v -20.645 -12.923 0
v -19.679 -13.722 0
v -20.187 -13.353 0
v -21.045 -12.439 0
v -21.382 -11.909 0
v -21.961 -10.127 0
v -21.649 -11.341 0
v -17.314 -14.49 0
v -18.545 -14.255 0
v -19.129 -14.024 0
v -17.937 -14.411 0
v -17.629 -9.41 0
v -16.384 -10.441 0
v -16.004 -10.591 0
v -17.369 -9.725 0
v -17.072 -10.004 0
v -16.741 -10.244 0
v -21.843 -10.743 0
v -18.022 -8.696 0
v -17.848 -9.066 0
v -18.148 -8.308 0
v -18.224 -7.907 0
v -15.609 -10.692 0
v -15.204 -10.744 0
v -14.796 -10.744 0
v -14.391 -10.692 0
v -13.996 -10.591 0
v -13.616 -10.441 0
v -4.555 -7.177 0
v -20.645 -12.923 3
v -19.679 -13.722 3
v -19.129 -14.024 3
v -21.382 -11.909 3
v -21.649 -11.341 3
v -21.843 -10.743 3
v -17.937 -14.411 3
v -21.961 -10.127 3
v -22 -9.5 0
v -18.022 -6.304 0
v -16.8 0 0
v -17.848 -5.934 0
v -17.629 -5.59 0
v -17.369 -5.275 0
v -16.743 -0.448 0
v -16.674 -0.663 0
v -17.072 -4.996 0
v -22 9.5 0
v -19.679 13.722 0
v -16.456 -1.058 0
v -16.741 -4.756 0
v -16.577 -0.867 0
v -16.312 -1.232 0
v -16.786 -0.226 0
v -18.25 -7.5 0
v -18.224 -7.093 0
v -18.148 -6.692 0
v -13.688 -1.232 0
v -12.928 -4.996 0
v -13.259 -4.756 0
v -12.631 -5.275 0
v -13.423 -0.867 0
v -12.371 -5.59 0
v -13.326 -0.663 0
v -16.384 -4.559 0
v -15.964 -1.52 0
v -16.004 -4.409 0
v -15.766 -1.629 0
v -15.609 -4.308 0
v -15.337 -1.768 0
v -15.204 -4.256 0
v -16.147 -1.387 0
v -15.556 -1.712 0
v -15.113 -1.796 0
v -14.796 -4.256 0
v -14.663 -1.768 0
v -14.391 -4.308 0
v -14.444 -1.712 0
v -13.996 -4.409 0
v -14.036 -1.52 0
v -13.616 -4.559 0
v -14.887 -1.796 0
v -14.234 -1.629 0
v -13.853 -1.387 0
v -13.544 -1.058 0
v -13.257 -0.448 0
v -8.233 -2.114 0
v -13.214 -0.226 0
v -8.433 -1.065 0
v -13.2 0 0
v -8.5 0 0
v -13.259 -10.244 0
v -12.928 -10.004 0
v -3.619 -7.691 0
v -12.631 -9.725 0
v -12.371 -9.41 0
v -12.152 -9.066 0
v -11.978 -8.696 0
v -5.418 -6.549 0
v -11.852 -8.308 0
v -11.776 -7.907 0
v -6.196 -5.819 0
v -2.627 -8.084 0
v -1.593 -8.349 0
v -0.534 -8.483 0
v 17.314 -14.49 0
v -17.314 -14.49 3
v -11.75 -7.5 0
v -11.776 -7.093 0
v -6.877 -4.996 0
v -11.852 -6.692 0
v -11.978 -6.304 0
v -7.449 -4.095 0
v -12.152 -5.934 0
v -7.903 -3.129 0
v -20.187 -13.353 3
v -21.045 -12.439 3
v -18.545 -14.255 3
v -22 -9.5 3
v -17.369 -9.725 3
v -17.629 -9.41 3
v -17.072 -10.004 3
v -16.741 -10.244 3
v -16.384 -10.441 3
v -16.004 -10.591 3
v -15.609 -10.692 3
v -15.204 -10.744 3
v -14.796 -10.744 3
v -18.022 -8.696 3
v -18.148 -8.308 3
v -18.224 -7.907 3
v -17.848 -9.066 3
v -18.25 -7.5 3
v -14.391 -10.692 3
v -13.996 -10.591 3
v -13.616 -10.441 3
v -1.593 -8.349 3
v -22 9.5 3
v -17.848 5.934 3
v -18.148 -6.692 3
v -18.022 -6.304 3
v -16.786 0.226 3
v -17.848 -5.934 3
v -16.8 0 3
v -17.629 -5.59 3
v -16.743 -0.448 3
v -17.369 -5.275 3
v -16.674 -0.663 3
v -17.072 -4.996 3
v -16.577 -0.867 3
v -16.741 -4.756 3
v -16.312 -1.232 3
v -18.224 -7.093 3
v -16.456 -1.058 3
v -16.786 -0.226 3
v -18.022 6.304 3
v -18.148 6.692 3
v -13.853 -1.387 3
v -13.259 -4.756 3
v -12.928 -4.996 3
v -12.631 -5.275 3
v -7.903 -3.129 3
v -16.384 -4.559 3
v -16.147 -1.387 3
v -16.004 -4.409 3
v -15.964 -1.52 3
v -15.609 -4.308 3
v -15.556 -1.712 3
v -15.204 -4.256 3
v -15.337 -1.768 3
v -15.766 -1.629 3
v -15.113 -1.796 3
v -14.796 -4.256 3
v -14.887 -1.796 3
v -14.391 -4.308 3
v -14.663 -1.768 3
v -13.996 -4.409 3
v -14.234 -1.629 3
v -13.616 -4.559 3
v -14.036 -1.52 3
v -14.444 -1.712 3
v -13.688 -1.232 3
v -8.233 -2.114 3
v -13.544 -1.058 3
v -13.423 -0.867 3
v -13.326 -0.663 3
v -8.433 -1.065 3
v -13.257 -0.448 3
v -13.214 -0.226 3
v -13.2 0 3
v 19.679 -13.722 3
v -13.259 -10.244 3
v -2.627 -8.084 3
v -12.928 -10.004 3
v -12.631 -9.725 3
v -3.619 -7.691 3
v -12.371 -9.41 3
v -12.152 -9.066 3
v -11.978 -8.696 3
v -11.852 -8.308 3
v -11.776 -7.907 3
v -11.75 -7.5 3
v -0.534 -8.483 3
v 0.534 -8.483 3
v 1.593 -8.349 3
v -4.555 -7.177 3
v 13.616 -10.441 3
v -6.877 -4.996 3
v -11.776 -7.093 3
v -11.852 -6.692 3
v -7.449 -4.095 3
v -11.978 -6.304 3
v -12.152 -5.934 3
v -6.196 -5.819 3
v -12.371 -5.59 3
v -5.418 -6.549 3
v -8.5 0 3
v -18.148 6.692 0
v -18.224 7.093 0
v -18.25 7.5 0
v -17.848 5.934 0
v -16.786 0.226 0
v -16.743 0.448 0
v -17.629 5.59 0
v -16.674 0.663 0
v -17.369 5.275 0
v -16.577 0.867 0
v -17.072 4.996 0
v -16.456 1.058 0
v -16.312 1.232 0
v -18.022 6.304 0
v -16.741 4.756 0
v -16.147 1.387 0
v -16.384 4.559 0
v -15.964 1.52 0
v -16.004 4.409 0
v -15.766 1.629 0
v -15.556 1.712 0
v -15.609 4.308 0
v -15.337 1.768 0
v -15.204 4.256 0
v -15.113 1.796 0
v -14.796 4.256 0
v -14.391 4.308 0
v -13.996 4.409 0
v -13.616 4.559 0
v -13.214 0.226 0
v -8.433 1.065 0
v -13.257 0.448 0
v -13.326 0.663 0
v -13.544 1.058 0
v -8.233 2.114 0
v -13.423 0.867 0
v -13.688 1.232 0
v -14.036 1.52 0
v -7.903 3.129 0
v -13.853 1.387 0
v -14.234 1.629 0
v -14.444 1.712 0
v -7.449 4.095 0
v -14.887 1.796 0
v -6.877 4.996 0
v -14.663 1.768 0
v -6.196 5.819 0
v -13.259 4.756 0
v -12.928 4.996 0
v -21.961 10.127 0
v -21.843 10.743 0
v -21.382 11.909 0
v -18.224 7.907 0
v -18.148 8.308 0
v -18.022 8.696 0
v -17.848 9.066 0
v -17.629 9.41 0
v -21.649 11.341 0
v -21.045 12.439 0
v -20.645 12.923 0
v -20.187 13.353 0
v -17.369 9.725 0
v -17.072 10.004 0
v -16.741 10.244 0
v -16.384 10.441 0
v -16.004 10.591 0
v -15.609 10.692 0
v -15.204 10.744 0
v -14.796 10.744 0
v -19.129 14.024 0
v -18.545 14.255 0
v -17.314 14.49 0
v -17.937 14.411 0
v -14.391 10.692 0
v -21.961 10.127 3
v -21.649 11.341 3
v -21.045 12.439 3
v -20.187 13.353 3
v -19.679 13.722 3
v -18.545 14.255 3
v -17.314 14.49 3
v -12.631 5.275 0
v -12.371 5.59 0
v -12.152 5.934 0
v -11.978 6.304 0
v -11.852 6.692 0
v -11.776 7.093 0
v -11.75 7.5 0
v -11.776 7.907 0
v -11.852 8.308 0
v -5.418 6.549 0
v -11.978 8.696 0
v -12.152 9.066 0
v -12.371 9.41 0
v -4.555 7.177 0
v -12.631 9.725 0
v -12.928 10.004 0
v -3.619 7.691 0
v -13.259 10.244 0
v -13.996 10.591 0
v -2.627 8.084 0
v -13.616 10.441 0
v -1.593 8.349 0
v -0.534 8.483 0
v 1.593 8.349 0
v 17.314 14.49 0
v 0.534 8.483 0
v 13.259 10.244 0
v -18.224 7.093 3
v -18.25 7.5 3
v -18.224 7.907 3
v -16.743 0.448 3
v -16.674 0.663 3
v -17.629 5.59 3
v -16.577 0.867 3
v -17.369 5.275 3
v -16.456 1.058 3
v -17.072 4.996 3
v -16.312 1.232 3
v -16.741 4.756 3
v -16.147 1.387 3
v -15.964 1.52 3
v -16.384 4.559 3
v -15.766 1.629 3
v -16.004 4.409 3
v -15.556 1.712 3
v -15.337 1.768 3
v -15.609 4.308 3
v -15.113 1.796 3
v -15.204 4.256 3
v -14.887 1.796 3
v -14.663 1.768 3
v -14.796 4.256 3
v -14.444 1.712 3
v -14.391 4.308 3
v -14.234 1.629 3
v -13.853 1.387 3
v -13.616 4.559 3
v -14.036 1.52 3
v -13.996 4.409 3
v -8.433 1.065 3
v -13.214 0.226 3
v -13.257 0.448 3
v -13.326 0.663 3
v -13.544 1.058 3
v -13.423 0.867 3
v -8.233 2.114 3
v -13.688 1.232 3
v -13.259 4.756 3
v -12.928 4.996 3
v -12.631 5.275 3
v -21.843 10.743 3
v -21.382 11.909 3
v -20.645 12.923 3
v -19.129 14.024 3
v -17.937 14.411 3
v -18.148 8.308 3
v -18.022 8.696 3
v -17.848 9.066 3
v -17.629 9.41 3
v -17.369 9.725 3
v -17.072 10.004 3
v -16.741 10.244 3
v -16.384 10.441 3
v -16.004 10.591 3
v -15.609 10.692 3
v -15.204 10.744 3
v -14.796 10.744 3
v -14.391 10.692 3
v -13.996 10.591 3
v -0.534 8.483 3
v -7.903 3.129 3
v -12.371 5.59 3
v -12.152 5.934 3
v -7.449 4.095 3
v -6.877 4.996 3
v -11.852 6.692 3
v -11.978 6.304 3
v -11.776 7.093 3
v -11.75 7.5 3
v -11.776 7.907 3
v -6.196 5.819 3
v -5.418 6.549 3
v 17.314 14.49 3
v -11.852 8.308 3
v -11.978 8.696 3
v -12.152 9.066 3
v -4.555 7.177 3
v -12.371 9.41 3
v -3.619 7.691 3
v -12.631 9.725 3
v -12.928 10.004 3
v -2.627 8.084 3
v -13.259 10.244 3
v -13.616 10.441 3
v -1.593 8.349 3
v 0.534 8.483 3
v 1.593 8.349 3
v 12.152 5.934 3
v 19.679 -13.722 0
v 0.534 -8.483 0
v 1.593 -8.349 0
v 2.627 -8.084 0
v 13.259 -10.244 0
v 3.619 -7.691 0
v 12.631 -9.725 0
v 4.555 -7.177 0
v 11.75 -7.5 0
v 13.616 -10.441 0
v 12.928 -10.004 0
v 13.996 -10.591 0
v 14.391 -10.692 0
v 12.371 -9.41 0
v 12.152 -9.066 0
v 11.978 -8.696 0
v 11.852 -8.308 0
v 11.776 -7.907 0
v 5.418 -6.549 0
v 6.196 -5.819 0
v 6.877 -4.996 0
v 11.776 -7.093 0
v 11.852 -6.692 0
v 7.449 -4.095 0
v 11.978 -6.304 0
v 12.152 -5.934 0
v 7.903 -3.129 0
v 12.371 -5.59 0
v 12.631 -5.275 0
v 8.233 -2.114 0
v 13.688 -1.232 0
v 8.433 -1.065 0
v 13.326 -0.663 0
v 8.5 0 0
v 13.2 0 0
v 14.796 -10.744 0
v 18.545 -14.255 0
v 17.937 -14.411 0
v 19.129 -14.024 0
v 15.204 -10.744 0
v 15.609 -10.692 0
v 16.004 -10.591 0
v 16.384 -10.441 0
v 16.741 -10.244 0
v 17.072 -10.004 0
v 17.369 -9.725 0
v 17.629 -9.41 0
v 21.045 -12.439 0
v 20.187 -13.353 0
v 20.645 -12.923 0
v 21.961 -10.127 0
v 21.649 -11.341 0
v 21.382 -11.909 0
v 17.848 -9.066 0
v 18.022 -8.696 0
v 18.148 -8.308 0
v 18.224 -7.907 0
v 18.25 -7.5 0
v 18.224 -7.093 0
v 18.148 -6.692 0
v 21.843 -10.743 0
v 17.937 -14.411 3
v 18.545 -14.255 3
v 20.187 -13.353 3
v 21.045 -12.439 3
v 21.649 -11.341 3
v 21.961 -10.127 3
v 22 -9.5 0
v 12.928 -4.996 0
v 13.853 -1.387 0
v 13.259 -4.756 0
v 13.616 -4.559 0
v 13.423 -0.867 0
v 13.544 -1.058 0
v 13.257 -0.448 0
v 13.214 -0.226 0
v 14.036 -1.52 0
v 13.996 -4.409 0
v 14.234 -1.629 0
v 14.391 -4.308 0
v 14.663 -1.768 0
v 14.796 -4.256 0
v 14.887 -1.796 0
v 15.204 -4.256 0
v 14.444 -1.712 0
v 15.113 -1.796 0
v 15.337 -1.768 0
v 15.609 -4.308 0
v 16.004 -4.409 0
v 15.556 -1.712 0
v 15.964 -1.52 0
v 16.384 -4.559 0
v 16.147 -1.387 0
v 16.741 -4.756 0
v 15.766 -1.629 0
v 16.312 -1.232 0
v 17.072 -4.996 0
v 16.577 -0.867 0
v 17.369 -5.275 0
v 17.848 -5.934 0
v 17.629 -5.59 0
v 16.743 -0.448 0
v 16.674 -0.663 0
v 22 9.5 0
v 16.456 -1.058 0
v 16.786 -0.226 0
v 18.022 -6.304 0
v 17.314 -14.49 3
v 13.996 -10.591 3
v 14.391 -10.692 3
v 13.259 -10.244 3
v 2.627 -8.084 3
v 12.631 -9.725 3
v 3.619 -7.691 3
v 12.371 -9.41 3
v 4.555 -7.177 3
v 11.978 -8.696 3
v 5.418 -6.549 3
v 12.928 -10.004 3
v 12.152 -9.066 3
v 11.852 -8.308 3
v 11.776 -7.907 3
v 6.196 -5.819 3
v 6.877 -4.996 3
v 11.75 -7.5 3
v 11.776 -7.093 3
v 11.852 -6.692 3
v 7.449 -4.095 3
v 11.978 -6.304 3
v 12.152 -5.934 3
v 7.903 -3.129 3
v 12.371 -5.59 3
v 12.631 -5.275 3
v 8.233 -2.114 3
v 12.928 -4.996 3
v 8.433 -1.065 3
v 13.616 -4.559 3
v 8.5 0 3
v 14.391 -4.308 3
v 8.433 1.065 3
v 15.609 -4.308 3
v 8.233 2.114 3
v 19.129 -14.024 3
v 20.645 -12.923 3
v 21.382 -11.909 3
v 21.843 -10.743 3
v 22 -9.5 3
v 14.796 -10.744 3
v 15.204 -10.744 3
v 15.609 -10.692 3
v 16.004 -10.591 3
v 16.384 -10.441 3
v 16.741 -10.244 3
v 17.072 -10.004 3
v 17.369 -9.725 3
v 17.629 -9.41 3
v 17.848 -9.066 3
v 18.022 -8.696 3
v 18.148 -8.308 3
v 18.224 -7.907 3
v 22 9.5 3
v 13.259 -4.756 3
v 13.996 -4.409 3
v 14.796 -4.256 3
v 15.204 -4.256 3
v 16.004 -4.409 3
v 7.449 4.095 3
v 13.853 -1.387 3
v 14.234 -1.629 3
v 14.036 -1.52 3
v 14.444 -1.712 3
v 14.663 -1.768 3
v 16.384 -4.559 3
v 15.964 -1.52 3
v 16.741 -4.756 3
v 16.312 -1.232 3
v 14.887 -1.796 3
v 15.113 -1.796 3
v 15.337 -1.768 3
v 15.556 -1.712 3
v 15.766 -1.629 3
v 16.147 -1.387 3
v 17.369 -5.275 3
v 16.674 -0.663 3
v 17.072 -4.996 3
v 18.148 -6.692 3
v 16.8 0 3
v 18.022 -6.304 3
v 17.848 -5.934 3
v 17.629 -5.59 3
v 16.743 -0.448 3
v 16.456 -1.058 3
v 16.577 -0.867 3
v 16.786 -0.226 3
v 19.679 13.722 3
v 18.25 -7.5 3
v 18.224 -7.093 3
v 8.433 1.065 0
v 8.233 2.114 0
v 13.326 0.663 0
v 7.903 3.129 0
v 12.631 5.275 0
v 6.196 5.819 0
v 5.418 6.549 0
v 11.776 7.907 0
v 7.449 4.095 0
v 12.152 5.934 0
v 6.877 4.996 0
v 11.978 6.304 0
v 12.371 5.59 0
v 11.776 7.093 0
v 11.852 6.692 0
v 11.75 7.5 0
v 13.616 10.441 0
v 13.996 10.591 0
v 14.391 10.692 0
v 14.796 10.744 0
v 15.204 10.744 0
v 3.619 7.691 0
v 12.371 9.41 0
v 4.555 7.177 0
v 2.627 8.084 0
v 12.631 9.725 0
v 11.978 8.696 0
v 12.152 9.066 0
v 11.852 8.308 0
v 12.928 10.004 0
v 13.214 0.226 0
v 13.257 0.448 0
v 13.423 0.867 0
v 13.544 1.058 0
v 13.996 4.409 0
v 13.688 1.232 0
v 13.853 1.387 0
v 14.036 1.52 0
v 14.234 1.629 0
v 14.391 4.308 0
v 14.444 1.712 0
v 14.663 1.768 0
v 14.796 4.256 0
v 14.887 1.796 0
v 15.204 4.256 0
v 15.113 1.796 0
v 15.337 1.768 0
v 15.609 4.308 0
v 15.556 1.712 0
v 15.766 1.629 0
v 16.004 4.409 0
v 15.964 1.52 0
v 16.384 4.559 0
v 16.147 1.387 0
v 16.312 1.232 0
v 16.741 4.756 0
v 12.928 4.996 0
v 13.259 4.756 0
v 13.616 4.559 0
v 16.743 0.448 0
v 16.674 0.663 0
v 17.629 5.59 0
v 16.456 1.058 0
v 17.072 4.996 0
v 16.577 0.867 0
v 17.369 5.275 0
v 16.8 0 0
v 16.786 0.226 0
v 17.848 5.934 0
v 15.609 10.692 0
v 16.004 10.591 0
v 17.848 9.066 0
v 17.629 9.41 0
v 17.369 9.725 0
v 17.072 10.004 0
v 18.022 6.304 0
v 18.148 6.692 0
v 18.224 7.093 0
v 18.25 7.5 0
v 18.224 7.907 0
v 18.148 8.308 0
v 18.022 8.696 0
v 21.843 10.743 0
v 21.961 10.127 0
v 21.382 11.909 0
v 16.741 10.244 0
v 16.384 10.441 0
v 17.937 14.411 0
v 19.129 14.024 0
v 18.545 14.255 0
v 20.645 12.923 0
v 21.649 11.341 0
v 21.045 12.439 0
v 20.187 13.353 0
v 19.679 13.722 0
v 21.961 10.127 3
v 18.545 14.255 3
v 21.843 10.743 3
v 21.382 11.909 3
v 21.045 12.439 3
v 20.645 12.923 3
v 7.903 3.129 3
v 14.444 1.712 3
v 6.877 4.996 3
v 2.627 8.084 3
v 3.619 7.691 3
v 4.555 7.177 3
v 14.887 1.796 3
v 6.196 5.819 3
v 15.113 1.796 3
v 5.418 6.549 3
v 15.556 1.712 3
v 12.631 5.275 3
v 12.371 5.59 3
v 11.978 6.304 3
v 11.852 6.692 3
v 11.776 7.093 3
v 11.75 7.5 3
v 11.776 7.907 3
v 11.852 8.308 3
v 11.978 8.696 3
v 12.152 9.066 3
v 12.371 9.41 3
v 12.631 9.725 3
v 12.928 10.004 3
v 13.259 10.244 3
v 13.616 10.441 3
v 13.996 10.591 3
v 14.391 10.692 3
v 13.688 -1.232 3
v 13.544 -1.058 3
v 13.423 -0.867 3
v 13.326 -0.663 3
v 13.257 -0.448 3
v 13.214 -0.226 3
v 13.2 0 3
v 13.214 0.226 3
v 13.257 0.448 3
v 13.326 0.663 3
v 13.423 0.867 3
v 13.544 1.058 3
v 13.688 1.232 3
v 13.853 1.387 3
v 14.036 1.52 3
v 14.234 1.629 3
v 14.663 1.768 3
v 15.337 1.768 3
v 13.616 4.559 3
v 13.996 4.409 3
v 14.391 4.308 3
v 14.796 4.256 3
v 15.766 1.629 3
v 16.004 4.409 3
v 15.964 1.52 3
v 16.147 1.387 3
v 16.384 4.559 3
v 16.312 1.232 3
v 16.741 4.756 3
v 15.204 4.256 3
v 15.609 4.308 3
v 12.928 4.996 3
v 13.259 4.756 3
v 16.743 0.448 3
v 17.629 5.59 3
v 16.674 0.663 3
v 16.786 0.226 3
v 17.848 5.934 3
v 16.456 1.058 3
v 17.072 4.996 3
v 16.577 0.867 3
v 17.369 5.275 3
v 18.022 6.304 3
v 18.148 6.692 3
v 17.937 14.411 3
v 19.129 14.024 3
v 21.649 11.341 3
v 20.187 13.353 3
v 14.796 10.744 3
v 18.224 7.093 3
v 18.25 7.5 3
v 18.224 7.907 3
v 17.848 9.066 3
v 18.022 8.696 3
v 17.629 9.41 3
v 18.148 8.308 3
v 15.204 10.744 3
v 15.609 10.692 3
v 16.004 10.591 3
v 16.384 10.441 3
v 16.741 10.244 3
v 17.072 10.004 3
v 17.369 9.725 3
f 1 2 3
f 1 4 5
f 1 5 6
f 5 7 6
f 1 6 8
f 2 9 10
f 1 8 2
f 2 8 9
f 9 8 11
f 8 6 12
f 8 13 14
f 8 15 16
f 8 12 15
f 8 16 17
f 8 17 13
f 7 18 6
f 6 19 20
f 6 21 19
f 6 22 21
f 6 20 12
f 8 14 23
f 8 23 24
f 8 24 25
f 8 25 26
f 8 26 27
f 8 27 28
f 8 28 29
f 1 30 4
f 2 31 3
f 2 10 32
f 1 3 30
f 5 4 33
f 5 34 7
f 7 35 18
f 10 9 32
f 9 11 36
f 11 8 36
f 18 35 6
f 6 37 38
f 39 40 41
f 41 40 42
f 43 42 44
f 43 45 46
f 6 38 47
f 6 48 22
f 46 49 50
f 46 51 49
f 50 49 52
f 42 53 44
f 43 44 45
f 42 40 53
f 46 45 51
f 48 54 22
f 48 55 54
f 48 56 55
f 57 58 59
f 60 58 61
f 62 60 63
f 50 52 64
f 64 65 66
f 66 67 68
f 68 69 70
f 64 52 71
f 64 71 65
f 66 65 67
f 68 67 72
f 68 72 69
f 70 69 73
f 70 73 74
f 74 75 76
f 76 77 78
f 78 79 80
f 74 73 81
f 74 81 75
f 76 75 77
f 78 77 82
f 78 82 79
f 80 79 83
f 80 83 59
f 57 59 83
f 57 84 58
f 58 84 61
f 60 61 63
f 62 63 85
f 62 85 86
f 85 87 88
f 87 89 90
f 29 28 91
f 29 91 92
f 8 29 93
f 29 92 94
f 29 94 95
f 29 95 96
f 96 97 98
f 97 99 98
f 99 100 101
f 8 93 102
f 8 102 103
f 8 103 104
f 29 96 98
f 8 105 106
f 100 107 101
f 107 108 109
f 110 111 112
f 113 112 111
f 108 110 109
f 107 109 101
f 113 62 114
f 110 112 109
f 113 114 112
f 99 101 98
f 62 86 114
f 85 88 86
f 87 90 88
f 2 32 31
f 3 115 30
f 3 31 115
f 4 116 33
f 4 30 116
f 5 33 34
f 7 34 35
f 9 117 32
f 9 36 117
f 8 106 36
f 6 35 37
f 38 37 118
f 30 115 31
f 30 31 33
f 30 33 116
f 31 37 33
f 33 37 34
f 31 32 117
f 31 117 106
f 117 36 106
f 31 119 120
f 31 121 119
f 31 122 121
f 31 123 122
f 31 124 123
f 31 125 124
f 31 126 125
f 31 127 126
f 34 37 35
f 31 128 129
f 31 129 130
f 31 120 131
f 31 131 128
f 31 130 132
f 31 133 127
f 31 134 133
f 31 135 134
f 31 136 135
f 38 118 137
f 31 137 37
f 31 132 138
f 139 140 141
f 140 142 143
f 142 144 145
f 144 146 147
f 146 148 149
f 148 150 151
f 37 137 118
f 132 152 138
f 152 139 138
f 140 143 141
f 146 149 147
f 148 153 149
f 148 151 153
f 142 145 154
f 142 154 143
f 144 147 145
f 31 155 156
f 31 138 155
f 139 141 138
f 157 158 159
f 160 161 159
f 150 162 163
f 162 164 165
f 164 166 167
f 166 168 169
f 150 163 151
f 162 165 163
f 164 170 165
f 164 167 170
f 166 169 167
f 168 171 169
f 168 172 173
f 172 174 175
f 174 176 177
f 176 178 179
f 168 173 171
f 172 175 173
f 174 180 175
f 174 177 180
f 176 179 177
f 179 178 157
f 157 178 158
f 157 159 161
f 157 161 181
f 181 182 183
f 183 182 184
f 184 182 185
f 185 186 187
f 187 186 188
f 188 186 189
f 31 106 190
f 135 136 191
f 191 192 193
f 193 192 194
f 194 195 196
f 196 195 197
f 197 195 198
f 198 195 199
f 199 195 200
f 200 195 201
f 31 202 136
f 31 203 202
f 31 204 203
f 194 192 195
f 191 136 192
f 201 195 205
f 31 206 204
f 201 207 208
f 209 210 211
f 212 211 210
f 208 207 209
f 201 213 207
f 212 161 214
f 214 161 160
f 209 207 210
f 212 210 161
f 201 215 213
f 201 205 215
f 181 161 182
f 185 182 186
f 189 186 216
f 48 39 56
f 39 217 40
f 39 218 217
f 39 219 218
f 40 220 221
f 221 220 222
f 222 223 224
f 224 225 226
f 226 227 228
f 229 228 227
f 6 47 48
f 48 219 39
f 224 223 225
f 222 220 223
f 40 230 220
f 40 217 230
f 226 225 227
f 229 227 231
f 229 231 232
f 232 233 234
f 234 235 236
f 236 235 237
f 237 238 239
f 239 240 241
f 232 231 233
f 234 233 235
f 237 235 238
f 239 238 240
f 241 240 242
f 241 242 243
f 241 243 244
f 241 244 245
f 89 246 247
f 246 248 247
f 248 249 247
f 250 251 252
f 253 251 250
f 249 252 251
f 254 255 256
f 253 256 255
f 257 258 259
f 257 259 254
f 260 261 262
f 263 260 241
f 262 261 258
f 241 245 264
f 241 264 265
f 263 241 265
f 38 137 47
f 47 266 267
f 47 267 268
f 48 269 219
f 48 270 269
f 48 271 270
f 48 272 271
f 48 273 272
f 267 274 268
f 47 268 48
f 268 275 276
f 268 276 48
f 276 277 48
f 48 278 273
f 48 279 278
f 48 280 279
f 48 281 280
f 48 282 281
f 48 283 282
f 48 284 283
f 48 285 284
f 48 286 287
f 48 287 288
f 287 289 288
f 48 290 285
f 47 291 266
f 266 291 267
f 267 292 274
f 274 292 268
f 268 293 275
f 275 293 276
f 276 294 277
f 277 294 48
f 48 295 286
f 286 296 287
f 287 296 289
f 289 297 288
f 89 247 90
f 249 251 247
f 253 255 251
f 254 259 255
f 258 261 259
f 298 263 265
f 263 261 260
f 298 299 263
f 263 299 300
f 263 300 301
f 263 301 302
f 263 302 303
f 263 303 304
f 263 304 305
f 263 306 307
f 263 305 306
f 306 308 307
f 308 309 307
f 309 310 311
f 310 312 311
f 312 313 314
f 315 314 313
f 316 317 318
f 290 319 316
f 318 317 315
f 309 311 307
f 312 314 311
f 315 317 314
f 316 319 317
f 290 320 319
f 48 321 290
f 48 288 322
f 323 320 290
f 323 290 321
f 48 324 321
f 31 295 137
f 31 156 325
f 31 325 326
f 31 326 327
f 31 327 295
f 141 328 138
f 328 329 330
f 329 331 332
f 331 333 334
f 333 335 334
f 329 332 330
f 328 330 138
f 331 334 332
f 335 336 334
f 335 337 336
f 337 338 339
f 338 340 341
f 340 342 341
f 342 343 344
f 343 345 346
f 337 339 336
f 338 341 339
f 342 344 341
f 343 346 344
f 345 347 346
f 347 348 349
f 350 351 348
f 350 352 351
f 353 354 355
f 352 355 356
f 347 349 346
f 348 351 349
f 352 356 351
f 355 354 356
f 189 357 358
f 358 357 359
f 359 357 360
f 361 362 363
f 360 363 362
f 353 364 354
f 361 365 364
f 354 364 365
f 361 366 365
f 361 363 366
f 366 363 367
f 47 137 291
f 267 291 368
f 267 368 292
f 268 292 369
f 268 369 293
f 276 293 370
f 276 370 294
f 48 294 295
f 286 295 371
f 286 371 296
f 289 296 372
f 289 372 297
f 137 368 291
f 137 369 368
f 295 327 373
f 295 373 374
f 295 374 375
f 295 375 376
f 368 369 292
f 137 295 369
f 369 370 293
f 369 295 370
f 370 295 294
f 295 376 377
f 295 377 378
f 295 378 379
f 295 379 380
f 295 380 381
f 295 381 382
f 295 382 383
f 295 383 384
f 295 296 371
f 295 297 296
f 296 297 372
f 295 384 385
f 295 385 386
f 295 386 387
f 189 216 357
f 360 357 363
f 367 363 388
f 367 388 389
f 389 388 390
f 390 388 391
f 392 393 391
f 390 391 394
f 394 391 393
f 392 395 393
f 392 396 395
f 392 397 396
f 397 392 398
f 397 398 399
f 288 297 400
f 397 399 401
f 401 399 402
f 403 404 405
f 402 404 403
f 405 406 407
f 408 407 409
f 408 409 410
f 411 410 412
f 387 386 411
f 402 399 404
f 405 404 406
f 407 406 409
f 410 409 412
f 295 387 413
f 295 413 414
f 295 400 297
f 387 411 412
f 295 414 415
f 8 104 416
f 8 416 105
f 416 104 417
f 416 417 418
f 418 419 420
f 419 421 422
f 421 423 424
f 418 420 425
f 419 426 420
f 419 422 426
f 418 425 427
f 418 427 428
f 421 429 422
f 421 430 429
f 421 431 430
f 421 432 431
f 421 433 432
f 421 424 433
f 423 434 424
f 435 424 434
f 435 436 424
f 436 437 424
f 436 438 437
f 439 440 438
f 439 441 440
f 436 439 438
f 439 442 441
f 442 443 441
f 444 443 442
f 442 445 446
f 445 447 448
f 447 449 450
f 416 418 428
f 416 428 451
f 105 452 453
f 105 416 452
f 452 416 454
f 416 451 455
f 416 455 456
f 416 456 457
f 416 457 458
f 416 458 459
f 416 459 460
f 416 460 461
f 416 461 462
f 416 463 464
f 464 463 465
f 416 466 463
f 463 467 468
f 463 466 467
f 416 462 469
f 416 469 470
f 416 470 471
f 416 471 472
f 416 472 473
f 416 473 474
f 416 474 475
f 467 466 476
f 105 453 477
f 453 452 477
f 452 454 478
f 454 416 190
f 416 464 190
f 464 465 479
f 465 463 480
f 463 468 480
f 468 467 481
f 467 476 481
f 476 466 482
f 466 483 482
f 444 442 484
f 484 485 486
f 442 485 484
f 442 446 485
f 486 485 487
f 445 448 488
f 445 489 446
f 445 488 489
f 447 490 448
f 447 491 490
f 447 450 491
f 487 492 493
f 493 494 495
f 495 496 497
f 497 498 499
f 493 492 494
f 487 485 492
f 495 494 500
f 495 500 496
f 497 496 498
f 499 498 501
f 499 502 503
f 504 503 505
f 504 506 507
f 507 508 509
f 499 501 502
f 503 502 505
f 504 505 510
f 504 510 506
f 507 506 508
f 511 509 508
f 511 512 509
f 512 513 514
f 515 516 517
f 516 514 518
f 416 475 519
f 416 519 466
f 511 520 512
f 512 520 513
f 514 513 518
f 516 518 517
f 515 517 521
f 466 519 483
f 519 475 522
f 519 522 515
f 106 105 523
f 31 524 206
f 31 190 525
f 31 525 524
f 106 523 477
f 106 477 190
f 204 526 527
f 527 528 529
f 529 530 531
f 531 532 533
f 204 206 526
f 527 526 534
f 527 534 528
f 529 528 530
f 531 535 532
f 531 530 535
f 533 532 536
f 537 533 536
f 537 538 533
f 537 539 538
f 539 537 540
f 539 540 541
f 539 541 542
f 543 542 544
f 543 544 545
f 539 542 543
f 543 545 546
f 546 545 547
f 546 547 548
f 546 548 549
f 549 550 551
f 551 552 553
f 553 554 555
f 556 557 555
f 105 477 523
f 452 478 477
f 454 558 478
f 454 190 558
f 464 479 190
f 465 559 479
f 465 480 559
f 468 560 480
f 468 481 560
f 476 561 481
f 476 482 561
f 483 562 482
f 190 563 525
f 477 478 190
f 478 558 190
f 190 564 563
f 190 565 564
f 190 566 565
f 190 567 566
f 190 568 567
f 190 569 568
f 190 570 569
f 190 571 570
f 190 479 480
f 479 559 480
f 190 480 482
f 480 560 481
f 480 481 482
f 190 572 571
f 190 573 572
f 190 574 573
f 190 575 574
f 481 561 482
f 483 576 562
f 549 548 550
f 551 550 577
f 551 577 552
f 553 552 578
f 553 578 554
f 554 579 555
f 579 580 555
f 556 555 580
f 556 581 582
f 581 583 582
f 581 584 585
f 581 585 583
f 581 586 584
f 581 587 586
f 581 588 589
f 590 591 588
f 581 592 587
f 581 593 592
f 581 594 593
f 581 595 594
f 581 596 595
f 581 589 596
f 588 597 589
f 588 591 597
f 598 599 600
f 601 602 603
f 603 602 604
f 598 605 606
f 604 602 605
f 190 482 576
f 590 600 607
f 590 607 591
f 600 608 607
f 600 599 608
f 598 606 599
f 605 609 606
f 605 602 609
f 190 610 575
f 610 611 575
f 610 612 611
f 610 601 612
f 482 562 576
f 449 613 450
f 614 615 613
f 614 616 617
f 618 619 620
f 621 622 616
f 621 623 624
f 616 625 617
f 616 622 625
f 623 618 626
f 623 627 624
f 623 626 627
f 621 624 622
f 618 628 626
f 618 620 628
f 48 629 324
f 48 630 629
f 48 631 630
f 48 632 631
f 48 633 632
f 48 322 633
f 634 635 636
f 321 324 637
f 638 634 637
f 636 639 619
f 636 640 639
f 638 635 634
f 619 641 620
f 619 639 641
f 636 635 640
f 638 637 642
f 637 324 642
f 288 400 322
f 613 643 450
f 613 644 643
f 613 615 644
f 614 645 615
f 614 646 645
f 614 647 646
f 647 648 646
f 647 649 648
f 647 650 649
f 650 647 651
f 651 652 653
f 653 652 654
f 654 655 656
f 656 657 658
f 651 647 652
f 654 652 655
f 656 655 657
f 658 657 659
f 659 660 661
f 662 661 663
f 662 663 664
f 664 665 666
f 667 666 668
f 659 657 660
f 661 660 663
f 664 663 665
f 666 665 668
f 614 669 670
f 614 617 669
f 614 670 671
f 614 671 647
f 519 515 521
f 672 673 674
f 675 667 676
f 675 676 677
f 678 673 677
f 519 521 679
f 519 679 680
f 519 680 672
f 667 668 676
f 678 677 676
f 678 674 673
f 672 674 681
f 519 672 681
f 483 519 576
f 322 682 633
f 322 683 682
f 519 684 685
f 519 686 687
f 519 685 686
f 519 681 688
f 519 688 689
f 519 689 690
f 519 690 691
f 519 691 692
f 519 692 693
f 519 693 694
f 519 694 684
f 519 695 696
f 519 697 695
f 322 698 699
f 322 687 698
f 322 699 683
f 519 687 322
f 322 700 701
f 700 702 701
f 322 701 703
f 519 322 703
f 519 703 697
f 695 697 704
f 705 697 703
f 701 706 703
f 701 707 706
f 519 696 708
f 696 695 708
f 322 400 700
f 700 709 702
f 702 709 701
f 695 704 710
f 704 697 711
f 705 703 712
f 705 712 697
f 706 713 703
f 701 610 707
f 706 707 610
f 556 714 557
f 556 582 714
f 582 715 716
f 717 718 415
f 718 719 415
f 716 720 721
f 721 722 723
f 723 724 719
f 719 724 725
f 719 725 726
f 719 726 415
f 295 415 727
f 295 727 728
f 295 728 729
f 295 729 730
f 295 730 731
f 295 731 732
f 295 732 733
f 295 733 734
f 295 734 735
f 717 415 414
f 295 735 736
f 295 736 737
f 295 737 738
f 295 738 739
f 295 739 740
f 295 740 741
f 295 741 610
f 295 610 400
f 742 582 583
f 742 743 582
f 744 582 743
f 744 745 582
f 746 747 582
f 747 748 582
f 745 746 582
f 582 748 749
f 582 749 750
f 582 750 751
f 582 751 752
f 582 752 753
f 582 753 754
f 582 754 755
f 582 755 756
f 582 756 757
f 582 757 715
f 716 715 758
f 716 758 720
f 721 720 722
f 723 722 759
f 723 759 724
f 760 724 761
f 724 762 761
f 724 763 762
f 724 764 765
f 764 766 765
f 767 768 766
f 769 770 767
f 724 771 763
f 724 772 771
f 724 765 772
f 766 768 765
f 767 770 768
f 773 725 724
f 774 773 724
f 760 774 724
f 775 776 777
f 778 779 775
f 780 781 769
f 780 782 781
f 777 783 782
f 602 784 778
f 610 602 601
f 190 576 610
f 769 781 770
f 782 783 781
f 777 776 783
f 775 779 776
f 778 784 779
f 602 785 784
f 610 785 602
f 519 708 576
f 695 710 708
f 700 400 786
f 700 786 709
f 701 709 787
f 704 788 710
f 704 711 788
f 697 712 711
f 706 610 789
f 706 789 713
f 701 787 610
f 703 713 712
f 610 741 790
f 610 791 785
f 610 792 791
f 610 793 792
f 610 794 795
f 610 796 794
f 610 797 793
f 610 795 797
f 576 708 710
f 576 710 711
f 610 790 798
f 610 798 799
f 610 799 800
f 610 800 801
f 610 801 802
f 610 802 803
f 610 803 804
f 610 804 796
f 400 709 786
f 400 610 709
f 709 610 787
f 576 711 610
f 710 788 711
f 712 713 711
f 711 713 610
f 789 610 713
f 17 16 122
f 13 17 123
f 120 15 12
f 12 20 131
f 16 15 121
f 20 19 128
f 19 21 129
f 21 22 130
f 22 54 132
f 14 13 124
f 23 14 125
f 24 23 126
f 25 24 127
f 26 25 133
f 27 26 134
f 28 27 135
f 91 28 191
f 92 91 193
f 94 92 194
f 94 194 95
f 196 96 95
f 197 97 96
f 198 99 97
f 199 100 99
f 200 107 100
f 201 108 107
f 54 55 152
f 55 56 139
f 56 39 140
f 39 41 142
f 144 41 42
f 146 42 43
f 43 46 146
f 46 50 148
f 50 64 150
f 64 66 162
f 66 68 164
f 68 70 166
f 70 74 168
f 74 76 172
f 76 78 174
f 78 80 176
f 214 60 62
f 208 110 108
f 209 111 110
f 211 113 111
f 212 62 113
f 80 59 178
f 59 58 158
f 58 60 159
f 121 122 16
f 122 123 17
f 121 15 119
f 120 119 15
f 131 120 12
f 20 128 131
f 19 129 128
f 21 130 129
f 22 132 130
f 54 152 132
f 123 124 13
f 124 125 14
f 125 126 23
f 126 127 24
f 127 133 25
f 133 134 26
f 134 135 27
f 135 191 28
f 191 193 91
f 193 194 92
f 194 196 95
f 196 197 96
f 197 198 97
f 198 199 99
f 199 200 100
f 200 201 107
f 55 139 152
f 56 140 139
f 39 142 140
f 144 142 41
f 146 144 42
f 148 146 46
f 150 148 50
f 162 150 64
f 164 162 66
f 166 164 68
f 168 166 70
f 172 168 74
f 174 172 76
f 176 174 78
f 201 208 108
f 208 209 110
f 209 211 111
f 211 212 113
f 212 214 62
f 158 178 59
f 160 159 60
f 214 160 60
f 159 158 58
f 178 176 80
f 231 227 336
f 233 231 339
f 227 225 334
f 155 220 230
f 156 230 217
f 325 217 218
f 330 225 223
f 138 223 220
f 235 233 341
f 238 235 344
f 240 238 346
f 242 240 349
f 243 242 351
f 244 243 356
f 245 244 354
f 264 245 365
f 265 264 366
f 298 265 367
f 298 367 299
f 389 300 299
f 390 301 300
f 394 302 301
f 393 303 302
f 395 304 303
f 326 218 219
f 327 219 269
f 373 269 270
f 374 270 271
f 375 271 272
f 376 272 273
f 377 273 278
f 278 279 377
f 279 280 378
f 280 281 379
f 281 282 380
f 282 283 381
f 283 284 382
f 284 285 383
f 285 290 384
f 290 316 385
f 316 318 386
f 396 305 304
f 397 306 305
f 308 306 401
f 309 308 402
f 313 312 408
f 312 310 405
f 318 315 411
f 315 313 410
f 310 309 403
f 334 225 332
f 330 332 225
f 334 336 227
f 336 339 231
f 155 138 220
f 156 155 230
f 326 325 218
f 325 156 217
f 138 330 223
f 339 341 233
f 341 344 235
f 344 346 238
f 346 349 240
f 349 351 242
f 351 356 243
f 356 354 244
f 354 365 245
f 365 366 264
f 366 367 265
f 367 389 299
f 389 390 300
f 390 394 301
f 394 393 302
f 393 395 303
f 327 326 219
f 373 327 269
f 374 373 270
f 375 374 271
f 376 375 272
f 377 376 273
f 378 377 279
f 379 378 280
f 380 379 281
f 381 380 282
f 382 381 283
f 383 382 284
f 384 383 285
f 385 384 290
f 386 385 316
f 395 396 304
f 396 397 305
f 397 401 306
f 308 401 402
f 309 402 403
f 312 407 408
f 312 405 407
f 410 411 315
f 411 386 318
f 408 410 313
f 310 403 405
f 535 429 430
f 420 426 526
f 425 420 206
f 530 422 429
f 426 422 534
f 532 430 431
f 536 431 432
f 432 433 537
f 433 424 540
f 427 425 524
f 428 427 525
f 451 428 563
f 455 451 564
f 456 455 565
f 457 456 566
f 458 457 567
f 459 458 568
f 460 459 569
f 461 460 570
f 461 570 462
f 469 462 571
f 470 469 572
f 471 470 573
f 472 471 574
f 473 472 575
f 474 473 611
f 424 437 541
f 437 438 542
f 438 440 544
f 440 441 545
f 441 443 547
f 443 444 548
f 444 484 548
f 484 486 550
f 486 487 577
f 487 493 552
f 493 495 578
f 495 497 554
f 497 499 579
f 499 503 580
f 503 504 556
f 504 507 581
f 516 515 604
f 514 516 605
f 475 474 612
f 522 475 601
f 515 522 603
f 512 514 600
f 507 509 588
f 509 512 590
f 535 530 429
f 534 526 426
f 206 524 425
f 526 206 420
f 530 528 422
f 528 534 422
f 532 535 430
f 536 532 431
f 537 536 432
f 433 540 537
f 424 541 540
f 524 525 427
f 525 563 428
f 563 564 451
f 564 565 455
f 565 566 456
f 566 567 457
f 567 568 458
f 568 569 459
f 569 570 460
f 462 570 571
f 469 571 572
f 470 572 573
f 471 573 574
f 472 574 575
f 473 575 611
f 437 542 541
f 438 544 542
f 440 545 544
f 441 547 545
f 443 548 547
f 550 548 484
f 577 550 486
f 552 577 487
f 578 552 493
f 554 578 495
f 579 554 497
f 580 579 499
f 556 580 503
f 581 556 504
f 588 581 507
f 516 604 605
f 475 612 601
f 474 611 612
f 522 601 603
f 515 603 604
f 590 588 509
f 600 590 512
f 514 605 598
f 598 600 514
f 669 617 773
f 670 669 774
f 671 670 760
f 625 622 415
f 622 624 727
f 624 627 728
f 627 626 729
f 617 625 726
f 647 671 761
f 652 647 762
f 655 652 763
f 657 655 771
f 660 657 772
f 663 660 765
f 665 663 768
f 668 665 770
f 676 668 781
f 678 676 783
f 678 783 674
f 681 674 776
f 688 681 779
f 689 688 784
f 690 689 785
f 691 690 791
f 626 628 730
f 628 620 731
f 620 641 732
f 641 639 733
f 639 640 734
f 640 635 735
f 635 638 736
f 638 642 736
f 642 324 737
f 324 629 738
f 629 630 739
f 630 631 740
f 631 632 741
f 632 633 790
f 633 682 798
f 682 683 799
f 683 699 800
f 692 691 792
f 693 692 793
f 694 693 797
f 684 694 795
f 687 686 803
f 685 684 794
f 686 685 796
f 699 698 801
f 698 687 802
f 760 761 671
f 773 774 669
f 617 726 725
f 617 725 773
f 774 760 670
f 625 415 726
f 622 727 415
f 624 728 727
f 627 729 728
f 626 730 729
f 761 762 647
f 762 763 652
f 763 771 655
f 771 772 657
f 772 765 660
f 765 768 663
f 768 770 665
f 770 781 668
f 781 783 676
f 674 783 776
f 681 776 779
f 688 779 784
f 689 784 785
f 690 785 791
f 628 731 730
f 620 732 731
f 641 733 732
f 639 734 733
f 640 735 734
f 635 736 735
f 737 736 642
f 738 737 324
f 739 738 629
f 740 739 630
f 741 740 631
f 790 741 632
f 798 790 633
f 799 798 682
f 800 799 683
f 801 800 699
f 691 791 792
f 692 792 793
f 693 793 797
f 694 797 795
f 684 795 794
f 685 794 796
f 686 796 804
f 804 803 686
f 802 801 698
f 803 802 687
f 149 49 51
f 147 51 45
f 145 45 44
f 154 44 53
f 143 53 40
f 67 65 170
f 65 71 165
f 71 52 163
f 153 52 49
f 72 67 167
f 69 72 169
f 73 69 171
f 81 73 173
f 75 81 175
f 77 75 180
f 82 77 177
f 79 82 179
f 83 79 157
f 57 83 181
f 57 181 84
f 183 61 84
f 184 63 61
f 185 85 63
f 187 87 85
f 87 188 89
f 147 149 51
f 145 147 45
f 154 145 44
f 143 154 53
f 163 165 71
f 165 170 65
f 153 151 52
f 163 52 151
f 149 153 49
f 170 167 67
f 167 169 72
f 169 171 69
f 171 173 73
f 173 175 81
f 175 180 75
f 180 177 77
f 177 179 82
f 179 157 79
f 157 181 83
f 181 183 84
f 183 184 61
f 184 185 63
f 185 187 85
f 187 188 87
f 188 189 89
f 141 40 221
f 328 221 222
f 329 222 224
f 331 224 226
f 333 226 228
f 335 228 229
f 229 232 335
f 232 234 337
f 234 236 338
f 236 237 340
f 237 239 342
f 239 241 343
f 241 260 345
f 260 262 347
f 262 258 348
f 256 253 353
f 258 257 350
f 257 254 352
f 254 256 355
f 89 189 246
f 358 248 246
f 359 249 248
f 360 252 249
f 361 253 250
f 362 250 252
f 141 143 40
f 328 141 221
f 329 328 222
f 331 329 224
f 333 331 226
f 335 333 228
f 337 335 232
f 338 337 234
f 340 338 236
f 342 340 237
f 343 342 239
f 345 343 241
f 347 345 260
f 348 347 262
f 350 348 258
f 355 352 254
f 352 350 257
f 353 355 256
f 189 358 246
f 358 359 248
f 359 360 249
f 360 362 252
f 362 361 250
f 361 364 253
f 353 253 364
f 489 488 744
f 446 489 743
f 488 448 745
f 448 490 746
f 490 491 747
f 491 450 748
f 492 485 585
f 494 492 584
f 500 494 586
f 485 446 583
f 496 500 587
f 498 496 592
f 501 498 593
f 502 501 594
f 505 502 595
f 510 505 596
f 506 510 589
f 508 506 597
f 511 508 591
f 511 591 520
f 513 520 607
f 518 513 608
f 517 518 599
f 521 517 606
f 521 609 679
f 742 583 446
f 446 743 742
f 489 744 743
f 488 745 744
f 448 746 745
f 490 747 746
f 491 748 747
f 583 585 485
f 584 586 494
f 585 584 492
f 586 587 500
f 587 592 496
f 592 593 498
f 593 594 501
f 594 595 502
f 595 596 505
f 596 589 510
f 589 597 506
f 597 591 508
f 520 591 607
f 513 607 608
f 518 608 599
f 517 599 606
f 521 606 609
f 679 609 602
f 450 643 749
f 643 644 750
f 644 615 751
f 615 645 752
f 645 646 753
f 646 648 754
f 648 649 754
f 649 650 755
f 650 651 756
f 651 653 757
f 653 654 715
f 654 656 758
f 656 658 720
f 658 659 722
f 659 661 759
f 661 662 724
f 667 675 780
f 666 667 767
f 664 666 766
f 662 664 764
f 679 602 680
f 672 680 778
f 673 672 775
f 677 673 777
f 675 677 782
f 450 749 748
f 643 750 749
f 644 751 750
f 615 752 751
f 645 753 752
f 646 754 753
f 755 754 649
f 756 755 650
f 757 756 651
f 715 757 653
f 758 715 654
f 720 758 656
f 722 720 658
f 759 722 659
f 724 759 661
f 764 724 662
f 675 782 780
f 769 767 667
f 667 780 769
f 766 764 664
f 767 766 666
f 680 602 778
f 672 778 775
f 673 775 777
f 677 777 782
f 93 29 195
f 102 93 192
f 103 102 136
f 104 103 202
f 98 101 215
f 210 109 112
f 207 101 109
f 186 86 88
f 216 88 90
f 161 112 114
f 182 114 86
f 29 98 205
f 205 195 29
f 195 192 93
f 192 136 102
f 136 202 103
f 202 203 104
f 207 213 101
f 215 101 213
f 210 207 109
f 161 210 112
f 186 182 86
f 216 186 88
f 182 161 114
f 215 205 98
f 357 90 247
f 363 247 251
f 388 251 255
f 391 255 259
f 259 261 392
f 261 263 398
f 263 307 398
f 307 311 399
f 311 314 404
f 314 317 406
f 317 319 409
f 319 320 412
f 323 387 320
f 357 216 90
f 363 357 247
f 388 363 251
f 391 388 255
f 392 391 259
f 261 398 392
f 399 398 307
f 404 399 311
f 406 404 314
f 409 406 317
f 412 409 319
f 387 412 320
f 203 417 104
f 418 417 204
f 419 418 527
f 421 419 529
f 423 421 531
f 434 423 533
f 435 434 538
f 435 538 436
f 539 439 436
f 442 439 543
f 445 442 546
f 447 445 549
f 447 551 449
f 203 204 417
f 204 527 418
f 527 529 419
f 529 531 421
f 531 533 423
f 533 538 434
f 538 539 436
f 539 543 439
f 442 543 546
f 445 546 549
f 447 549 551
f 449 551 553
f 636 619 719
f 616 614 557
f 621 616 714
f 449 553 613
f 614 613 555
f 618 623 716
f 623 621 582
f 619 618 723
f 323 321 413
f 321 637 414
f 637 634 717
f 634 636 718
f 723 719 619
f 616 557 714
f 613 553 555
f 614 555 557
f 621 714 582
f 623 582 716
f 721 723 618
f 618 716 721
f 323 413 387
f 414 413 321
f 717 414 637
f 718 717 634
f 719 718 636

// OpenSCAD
$fn = 50;

difference() {
	union() {
		hull() {
			translate(v = [-17.0, 9.5, 0]) {
				cylinder(h = 3, r = 5);
			}
			translate(v = [17.0, 9.5, 0]) {
				cylinder(h = 3, r = 5);
			}
			translate(v = [-17.0, -9.5, 0]) {
				cylinder(h = 3, r = 5);
			}
			translate(v = [17.0, -9.5, 0]) {
				cylinder(h = 3, r = 5);
			}
		}
	}
	union() {
		translate(v = [-15.0, -7.5, 0]) {
			cylinder(h = 3, r = 3.25);
		}
		translate(v = [-15.0, 7.5, 0]) {
			cylinder(h = 3, r = 3.25);
		}
		translate(v = [15.0, -7.5, 0]) {
			cylinder(h = 3, r = 3.25);
		}
		translate(v = [15.0, 7.5, 0]) {
			cylinder(h = 3, r = 3.25);
		}
		translate(v = [-15.0, 0.0, 0]) {
			cylinder(h = 3, r = 1.8);
		}
		translate(v = [15.0, 0.0, 0]) {
			cylinder(h = 3, r = 1.8);
		}
		cylinder(h = 3, r = 8.5);
	}
}
